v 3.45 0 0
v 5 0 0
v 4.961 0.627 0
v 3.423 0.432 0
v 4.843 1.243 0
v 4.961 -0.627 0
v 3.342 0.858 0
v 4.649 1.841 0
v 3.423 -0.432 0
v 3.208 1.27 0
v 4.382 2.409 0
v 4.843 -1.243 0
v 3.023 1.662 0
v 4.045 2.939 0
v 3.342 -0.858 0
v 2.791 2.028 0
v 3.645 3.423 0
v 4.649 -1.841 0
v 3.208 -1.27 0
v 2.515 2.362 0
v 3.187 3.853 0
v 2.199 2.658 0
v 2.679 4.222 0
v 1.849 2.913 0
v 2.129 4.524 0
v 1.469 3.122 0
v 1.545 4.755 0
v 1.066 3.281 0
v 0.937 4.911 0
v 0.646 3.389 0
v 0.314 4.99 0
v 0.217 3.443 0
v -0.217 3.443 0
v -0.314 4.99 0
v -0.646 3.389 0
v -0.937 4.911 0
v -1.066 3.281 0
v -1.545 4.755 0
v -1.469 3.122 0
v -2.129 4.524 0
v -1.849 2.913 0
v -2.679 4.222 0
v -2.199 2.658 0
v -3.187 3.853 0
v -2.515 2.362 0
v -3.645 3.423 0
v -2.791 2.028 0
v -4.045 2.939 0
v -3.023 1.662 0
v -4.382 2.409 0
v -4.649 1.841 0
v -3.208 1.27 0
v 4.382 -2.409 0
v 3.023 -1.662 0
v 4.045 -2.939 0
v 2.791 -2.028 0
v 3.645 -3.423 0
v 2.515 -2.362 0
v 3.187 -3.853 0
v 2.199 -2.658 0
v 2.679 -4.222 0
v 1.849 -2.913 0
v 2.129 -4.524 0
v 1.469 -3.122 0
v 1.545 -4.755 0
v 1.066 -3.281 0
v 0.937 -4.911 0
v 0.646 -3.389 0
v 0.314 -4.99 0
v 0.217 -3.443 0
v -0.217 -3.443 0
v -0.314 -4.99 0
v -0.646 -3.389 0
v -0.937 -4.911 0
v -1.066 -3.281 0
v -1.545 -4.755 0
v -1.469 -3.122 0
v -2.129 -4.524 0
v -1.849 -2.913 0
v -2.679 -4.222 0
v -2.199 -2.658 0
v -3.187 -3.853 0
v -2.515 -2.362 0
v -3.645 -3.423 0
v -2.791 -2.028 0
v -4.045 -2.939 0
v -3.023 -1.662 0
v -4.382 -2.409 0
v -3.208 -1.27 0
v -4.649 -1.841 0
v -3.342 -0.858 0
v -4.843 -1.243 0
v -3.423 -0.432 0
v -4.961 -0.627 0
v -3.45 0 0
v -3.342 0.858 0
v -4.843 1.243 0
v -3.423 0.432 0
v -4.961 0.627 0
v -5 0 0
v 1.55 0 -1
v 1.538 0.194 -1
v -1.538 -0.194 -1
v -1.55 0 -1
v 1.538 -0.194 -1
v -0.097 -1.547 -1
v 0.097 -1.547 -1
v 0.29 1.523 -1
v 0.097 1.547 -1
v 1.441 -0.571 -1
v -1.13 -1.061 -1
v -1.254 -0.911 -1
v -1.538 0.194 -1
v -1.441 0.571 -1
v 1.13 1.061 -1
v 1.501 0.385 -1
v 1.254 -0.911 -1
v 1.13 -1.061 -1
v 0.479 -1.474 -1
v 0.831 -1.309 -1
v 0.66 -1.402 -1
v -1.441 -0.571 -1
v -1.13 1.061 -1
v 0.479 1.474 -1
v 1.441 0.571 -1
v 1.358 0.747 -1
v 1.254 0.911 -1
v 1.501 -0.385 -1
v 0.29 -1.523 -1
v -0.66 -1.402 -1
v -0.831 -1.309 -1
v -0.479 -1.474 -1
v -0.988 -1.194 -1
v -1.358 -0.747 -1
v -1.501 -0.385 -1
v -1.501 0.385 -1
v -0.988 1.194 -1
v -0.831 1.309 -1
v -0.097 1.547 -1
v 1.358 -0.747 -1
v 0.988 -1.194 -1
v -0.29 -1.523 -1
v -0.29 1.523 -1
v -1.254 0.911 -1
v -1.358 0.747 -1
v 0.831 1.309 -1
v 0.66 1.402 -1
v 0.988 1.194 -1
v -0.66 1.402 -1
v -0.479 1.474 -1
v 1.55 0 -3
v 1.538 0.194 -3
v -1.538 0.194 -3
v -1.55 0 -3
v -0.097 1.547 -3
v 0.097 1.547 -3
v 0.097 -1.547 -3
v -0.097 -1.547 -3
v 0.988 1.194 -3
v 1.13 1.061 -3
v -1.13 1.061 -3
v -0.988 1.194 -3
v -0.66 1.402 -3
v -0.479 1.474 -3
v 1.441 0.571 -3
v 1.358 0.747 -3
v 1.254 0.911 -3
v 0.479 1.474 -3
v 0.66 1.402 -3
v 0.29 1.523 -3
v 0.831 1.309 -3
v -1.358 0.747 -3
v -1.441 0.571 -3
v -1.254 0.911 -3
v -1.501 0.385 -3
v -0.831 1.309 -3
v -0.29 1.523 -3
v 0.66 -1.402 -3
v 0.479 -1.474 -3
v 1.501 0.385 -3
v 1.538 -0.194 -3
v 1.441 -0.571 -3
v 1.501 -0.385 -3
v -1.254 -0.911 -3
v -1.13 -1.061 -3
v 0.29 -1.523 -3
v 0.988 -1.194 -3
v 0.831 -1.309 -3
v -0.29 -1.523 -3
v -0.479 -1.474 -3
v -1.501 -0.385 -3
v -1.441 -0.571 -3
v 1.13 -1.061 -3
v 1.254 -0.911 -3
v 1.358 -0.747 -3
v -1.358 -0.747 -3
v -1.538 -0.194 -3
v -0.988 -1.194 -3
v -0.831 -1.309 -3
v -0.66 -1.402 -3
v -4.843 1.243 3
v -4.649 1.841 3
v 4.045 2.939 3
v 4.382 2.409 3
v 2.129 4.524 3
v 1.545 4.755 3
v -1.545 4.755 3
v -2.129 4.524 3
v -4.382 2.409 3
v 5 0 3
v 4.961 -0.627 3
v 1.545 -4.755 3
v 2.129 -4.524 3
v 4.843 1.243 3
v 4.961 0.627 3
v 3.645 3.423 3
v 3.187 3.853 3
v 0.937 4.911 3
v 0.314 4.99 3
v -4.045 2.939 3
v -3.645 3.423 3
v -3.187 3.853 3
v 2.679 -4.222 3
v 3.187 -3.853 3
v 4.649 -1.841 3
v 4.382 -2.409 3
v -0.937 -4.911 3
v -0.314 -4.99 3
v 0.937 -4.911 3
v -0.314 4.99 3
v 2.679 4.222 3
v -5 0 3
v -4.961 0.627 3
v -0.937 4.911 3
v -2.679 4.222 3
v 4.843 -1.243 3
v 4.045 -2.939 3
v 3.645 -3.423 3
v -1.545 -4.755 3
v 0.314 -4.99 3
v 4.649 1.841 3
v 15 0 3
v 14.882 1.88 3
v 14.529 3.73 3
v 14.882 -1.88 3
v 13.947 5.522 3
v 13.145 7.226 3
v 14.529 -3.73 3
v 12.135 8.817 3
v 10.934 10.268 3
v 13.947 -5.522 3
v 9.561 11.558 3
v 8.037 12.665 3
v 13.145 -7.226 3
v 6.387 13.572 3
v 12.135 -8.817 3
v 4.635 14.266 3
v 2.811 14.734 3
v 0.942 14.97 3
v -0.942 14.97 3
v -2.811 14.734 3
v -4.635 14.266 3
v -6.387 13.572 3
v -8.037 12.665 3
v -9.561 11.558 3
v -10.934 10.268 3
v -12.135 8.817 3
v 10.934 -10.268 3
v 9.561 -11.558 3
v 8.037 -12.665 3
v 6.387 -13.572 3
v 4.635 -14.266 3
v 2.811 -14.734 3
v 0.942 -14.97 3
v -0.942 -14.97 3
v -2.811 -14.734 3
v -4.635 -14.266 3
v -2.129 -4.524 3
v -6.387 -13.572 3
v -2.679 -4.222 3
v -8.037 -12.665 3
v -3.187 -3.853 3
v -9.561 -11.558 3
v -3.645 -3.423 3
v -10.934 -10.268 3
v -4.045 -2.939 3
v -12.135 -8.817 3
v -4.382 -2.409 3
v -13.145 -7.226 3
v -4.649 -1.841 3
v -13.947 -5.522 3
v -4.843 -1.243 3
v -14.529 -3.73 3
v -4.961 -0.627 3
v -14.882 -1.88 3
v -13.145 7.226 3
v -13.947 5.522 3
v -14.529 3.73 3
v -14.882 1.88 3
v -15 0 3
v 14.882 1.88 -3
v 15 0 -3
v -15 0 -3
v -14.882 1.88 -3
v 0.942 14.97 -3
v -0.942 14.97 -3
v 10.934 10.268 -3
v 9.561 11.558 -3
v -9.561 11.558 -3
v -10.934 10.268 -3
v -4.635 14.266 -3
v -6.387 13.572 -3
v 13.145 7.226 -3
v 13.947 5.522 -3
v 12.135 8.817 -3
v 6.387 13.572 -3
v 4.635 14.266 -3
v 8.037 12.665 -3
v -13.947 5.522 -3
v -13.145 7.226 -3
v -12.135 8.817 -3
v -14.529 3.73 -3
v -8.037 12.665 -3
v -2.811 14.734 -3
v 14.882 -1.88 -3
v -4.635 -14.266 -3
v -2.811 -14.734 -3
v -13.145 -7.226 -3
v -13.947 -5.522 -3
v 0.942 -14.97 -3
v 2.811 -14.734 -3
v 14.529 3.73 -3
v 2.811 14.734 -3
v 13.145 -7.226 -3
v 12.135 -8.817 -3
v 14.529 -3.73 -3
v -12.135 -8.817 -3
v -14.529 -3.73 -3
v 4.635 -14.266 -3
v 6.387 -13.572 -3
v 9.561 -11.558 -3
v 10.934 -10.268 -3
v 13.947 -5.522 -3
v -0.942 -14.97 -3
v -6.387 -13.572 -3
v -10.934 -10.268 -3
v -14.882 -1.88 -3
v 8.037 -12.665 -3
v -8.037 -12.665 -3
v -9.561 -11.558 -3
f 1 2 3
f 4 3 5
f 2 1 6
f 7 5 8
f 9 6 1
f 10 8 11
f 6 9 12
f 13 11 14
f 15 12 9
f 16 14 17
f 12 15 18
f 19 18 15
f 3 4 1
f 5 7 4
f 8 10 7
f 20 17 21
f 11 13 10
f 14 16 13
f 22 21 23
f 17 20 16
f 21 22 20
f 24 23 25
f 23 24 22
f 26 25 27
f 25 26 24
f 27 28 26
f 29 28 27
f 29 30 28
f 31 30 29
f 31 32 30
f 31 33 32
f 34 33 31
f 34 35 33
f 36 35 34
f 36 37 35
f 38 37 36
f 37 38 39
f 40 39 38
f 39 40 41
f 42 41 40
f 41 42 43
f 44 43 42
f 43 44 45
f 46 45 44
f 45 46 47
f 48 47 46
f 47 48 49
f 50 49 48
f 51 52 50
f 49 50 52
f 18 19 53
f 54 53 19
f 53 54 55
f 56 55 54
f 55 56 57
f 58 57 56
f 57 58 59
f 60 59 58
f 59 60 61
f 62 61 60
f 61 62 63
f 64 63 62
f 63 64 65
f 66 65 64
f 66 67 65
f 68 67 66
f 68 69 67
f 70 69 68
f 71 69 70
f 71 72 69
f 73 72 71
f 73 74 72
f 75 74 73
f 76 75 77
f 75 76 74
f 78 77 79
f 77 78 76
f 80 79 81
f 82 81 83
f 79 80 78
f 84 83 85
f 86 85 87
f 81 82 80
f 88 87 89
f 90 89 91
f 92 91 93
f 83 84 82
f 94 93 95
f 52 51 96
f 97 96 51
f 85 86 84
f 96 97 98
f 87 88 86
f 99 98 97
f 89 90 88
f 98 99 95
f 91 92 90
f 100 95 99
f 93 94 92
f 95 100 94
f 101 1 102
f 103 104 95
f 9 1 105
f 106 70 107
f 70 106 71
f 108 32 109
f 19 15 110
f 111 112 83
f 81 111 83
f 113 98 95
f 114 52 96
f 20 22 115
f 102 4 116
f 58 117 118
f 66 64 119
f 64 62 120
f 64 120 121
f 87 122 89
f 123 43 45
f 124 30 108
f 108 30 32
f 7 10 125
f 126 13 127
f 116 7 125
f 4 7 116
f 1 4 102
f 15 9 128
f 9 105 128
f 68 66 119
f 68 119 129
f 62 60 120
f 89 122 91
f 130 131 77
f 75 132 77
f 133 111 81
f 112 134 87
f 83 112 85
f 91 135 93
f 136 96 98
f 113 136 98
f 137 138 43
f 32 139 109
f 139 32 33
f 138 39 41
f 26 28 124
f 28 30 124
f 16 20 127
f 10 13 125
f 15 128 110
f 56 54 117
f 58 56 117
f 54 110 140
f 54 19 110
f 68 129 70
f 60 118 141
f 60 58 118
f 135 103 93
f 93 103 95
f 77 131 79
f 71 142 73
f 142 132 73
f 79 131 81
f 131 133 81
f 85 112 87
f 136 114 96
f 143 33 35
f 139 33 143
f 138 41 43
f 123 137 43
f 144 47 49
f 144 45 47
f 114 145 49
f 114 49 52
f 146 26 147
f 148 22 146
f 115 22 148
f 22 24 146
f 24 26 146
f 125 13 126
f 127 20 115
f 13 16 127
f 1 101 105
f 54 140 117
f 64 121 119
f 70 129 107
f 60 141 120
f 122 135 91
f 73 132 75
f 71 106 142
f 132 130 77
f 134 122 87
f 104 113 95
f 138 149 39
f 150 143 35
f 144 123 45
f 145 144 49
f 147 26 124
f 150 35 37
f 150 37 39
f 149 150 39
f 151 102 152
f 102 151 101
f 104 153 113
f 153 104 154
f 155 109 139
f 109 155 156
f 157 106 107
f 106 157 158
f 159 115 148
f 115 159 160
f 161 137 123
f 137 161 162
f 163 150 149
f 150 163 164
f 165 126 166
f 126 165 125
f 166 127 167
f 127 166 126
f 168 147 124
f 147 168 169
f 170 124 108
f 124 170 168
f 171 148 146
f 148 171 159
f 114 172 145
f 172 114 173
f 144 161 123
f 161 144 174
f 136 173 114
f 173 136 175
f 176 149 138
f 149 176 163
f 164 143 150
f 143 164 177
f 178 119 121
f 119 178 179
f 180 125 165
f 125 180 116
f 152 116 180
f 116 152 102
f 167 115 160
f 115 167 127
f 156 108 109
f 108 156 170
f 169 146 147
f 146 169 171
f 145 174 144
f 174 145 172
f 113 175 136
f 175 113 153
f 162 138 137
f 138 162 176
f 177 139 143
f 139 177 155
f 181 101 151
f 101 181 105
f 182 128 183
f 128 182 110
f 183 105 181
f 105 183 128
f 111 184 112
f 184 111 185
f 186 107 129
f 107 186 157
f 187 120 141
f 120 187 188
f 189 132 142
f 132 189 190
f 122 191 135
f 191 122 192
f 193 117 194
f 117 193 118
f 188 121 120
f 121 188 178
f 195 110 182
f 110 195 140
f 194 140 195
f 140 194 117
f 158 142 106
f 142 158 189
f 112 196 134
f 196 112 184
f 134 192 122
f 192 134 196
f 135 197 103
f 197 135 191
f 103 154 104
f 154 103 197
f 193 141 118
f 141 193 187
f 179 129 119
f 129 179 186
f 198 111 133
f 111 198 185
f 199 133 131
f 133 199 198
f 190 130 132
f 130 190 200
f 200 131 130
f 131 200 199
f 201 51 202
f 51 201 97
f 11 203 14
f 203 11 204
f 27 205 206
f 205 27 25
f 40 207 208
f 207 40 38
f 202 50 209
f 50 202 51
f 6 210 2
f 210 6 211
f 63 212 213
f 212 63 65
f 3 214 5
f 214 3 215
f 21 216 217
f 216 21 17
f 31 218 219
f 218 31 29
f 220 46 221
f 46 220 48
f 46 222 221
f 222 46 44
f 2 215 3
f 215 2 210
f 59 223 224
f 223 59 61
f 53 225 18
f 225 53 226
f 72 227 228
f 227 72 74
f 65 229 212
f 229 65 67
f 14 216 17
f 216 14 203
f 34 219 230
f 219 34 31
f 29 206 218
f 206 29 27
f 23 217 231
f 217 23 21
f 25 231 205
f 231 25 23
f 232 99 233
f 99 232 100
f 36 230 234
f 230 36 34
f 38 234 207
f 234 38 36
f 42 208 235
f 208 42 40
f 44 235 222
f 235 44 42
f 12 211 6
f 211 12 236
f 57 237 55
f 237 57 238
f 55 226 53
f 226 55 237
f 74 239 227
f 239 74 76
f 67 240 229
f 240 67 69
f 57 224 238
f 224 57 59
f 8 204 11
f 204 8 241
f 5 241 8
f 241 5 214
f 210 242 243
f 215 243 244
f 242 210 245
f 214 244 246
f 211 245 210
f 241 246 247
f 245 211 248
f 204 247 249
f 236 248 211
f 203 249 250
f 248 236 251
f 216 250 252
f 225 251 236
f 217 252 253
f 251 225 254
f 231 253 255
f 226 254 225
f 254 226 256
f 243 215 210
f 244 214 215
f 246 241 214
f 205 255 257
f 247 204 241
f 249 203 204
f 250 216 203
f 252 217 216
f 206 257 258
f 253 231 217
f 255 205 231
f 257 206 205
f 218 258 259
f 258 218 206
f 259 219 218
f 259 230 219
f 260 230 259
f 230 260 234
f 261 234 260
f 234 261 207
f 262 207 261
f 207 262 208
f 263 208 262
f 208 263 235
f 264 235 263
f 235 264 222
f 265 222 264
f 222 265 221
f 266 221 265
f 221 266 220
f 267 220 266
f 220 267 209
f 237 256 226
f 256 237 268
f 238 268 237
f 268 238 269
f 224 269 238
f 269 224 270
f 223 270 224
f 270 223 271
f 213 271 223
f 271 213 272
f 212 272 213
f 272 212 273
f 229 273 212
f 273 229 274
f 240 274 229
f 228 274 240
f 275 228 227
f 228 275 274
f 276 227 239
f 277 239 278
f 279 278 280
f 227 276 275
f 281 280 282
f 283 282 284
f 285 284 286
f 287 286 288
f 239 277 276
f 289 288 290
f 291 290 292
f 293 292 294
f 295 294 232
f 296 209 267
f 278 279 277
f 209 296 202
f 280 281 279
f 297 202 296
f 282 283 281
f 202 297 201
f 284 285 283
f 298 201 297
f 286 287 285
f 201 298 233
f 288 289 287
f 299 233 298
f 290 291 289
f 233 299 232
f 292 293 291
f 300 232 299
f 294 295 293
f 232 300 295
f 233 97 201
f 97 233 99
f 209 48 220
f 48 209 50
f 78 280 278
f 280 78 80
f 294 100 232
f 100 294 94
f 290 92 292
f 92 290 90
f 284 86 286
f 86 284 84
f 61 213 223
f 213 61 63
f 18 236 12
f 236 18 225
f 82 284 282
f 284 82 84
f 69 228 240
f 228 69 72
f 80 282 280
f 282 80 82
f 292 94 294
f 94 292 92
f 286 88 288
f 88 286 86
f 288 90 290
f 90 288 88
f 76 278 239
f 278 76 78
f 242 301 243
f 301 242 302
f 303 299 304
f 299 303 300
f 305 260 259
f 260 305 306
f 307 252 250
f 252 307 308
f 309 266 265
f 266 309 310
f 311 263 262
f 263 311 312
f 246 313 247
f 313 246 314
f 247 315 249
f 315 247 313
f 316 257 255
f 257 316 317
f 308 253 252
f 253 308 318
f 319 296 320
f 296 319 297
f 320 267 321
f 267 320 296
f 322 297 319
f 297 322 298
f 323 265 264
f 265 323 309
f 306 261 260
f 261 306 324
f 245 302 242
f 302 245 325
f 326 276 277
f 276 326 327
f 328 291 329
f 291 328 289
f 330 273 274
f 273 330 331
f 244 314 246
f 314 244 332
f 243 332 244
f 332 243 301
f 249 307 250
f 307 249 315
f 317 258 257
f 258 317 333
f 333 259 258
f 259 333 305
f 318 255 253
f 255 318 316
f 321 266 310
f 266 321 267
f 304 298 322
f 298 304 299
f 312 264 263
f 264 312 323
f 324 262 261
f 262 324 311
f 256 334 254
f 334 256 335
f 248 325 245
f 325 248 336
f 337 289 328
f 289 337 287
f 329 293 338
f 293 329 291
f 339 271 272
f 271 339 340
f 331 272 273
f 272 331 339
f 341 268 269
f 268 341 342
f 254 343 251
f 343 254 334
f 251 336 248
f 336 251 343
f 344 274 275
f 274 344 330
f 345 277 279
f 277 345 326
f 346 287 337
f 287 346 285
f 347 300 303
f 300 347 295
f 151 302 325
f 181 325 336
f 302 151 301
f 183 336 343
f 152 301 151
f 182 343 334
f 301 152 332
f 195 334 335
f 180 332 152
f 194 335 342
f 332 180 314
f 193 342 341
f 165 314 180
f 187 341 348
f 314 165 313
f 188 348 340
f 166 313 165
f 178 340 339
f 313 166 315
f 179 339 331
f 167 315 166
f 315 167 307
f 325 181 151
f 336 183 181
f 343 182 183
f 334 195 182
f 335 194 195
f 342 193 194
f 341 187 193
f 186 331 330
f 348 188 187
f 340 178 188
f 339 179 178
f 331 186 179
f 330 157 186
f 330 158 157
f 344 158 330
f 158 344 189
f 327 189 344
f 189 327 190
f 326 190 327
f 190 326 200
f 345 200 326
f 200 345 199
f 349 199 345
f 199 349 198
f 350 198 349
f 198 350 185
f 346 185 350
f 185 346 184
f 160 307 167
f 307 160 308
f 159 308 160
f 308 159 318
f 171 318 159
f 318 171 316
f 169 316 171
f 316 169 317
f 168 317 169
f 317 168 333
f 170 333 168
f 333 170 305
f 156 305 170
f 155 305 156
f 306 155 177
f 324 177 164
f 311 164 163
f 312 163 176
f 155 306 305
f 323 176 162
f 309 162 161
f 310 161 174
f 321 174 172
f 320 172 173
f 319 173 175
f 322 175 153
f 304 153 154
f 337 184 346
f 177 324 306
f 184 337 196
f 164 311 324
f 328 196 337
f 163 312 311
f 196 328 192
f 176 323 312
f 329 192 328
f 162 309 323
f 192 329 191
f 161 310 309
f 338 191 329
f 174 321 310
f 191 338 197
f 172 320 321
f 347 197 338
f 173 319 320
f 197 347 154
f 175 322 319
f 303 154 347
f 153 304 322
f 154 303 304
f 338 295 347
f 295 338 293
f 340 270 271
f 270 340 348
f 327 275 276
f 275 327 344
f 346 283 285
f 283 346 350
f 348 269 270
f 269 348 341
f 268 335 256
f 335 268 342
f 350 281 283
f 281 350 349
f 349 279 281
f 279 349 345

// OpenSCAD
$fn = 50;


difference() {
	union() {
		translate(v = [0, 0, -3.0000000000]) {
			cylinder(h = 6, r = 15.0000000000);
		}
	}
	union() {
		translate(v = [0, 0, 0]) {
			rotate(a = [0, 0, 0]) {
				difference() {
					union() {
						translate(v = [0, 0, -6.0000000000]) {
							cylinder(h = 6, r = 1.2500000000);
						}
						translate(v = [0, 0, -1.0000000000]) {
							cylinder(h = 1.0000000000, r1 = 1.5500000000, r2 = 3.4500000000);
						}
						translate(v = [0, 0, -6.0000000000]) {
							cylinder(h = 6, r = 1.5500000000);
						}
						translate(v = [0, 0, -6.0000000000]) {
							cylinder(h = 6, r = 1.2500000000);
						}
					}
					union();
				}
			}
		}
		#cylinder(h = 3, r = 5.0000000000);
	}
}
